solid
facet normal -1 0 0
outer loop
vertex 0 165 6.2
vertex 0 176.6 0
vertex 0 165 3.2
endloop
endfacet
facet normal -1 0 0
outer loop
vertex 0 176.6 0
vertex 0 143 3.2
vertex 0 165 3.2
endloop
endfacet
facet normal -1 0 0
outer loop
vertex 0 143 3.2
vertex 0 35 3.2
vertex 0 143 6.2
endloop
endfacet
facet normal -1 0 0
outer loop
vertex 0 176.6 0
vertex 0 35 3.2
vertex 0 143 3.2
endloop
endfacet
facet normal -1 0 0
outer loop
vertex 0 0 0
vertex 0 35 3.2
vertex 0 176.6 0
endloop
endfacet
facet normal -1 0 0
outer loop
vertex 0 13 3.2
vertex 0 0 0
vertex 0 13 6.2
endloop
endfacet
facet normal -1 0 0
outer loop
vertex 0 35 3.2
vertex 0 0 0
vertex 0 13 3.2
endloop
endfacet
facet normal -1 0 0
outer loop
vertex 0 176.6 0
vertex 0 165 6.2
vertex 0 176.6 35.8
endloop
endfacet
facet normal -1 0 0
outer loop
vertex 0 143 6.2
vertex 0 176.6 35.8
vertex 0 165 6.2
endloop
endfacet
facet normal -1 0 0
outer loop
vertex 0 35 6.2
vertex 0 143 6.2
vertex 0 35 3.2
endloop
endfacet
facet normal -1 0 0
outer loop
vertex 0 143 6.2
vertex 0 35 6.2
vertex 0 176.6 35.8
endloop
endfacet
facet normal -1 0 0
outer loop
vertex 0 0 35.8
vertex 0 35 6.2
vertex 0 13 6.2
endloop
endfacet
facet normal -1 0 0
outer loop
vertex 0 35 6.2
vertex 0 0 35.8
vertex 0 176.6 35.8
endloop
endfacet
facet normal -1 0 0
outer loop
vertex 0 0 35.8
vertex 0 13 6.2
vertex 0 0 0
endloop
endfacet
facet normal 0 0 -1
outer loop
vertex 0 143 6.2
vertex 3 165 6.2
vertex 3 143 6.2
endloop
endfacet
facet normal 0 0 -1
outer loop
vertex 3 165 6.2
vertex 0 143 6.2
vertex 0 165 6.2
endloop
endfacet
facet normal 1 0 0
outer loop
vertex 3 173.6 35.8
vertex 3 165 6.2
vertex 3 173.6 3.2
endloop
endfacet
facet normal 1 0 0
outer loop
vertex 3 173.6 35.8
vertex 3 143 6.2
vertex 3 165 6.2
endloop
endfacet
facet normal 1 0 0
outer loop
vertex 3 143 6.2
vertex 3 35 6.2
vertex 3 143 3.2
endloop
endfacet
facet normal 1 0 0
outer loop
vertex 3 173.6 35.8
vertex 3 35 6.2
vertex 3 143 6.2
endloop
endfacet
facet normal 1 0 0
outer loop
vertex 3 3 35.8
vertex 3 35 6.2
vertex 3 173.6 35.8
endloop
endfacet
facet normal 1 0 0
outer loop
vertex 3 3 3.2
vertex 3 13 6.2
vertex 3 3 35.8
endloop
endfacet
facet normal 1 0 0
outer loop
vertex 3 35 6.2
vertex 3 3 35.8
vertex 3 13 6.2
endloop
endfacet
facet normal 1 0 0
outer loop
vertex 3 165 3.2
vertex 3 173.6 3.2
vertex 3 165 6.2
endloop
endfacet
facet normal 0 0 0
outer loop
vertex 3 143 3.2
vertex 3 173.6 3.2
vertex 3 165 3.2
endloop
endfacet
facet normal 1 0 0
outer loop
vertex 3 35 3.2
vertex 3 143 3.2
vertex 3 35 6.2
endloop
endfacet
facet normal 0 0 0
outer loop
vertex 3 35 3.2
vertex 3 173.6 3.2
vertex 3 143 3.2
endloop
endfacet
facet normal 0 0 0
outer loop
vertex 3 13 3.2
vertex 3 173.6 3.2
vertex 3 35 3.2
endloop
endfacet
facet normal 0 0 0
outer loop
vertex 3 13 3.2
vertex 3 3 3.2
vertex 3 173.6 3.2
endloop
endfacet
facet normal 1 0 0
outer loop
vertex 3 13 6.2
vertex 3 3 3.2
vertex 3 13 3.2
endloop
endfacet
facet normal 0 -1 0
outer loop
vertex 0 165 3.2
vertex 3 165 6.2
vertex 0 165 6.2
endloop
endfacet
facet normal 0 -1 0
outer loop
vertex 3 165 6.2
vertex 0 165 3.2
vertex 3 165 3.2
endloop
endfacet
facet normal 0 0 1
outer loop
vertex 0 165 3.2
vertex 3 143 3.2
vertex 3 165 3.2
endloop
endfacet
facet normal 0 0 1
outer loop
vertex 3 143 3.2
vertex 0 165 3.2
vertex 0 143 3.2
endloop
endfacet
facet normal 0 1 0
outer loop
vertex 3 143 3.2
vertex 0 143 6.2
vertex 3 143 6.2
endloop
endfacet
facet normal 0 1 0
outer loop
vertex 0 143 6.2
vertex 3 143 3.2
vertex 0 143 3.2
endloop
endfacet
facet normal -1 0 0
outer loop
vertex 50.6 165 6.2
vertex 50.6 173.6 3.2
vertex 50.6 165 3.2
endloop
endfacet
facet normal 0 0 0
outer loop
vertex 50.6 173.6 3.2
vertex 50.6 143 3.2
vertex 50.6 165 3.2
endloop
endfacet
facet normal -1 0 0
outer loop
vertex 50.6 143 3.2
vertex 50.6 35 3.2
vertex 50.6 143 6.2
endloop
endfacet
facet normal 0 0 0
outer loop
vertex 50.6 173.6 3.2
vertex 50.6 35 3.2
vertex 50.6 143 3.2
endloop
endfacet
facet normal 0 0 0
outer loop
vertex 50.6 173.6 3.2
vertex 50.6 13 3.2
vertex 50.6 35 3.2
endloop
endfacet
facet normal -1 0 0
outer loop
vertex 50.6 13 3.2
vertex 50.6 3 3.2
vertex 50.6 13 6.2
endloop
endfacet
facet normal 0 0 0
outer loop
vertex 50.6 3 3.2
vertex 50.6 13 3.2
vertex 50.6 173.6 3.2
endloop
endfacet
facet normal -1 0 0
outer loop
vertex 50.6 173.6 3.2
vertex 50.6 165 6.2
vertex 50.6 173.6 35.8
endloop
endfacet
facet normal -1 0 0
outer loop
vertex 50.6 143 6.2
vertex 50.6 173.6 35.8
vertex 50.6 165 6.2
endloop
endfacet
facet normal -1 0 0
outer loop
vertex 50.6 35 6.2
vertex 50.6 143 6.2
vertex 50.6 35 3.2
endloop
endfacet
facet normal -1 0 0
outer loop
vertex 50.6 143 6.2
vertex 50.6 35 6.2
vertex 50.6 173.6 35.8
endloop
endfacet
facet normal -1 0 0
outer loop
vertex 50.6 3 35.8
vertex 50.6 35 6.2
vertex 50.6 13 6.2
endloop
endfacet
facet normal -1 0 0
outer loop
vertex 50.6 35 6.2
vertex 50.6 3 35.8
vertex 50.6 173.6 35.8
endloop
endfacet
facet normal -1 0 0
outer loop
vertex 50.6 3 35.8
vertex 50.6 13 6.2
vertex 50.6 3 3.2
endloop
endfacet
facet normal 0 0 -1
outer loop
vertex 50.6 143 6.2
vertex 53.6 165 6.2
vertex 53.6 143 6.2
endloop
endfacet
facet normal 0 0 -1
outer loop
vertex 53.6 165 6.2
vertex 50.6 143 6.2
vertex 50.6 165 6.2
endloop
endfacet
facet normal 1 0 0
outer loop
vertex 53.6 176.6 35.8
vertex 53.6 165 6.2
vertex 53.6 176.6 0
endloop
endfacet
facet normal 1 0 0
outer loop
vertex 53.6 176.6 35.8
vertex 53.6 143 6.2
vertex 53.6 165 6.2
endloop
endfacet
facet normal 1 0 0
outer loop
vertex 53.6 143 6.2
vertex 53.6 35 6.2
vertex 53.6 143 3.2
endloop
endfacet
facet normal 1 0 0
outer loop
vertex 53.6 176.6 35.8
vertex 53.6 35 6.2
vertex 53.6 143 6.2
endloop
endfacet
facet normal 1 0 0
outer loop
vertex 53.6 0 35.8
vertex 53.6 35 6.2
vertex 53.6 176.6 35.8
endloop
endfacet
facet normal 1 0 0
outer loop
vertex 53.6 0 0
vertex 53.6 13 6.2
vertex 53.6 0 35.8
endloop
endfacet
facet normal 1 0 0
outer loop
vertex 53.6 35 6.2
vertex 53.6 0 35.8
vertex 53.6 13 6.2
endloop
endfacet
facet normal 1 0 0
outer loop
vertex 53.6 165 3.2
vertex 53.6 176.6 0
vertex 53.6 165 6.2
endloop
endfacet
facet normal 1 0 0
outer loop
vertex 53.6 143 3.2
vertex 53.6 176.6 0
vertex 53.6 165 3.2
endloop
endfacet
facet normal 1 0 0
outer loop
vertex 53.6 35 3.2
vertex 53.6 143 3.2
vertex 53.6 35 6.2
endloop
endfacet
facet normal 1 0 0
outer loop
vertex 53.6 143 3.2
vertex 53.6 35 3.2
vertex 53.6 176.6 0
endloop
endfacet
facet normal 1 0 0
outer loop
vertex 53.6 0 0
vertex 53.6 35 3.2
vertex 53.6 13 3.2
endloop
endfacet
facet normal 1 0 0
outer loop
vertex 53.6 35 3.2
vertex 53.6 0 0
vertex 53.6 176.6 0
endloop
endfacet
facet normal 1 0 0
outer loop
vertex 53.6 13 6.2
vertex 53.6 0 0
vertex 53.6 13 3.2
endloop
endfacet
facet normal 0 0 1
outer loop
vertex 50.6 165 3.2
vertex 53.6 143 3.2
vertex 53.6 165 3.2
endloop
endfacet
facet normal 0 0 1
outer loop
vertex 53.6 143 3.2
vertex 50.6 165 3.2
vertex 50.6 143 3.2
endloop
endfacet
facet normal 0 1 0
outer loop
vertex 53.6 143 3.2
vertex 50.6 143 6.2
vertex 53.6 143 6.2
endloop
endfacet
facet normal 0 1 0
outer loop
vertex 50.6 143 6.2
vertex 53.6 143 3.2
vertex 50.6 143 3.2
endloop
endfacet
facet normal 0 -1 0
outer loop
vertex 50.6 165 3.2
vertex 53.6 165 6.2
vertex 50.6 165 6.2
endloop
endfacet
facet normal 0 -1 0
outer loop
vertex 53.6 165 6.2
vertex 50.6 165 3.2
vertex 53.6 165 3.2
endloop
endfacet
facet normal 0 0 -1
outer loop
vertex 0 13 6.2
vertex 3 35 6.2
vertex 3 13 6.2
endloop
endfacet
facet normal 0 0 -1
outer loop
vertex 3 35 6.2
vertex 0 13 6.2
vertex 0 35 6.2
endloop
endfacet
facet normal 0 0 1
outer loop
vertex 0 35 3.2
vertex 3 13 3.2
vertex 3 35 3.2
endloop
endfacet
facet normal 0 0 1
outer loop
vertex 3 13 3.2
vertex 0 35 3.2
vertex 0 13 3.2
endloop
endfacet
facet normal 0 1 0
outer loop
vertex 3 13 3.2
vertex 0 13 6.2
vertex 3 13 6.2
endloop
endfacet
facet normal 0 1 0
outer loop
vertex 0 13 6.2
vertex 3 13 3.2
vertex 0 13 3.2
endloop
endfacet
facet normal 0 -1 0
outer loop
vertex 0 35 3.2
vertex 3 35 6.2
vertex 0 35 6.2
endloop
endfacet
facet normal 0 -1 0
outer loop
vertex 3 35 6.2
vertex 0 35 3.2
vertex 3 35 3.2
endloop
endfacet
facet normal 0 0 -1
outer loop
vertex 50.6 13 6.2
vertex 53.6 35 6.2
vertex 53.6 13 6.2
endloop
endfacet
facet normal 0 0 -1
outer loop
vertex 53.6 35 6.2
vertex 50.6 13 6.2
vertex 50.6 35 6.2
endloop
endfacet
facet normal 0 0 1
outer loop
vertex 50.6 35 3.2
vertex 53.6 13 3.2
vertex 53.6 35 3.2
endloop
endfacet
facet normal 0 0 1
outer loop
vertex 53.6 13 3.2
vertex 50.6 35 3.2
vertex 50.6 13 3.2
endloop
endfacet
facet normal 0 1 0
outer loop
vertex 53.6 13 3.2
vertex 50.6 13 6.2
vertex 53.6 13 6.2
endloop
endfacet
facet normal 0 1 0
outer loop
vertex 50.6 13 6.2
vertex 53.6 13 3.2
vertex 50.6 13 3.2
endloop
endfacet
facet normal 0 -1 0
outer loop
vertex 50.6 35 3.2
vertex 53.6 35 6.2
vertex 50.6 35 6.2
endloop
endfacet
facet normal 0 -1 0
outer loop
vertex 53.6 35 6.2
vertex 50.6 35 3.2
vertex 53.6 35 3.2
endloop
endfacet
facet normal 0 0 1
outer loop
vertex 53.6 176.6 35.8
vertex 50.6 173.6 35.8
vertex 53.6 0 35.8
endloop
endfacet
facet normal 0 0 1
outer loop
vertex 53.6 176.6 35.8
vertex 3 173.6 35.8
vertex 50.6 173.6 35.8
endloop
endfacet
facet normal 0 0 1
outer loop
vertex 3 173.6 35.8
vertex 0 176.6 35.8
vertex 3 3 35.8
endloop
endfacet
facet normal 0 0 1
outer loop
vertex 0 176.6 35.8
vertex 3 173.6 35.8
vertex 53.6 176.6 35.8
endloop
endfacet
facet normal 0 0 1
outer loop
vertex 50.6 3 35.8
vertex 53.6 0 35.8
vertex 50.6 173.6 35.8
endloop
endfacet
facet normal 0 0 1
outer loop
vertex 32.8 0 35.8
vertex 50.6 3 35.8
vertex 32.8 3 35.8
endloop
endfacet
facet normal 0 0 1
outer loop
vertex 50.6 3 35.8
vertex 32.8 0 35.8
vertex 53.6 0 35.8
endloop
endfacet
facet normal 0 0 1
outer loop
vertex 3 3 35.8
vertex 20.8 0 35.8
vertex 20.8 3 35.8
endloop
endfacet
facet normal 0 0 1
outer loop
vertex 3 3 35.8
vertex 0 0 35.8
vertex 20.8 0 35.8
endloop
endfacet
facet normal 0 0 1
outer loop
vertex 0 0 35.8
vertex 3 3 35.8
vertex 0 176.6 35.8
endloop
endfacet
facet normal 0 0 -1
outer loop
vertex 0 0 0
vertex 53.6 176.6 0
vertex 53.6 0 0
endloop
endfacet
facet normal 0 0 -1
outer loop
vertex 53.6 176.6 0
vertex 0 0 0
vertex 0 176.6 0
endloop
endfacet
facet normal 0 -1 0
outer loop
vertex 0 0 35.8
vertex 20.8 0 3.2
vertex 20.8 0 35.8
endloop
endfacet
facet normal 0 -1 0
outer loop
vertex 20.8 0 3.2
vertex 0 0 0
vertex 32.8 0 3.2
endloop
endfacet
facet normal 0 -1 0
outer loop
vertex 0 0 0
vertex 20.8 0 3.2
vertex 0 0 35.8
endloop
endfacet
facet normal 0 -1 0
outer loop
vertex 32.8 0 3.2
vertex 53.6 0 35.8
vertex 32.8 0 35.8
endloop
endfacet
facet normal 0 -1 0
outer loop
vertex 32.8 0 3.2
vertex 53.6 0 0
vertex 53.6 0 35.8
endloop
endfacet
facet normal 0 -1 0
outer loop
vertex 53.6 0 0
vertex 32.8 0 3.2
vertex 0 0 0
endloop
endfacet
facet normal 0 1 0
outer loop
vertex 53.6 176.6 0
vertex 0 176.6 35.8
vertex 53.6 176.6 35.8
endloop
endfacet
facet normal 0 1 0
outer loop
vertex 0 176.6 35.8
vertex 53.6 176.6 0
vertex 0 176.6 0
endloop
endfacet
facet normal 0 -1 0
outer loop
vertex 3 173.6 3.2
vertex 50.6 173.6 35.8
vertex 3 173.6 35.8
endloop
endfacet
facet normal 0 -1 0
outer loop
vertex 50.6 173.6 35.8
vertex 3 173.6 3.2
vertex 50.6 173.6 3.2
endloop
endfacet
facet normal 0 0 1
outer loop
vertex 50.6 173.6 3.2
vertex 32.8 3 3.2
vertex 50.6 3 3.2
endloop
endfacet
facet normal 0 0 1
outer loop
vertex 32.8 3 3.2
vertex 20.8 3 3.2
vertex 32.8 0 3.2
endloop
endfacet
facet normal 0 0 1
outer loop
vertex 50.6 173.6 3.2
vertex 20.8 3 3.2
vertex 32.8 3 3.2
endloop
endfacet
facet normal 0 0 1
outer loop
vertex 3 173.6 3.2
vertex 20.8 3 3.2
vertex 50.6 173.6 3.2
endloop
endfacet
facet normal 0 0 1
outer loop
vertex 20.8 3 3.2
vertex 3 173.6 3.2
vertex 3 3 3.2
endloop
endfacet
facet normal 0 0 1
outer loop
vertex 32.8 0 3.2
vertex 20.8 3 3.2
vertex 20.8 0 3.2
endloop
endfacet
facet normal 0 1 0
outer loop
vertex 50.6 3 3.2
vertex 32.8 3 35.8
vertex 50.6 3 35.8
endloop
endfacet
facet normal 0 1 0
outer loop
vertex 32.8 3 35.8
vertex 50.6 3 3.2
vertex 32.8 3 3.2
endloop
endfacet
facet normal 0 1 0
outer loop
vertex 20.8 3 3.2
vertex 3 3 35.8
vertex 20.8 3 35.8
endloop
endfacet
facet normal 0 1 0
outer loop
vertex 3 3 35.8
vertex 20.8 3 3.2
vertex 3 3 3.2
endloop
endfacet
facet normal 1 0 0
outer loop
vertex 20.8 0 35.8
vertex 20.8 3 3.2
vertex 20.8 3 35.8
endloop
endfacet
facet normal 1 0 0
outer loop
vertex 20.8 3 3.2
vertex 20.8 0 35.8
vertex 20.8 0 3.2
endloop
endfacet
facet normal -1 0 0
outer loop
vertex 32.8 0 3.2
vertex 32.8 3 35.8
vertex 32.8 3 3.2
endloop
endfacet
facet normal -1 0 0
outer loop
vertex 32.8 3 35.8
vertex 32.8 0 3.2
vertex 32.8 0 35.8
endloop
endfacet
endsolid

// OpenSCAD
//
// Parametric battery tray with SIDE-WALL strap slots
// B Dog — Pi/quad build
//
// Coordinate frame:
//   X = width  (left↔right)
//   Y = length (front↔back)
//   Z = up (floor → lips)
//

//-------------------
// USER PARAMETERS 
//-------------------
battery           = [47, 170, 32];   // [W, L, H]  (width, length, height) in mm
clearance         = 0.30;            // per-side clearance inside pocket (ABS ≈ 0.3–0.4)
wallThickness     = 3.00;            // wall thickness
floorThickness    = 3.20;            // floor thickness

// Side-wall strap slots (two bands)
strapWidth       = 20.0;                // strap width (typical 20 mm)
slotLengthY      = strapWidth + 2.0;    // along Y (give ~1 mm per side)
slotThicknessZ   = 3.0;                 // vertical opening (Z) for the strap thickness
slot1OffsetFront = 10.0;                // first slot center from inner FRONT (Y)
slotSpacingY     = 130.0;               // distance between the two slots along Y

// Cable exit notch (front lip)
cableNotchWidth = 12.0;
cableNotchDepth = 6.0;

//-----------------------
// DERIVED GEOMETRY
//-----------------------
innerWidth  = battery[0] + 2*clearance;  // inner width
innerLength = battery[1] + 2*clearance;  // inner length 
innerHeight = battery[2] + 2*clearance;  // inner height

outerBlock = [ innerWidth  + 2*wallThickness,
               innerLength + 2*wallThickness, 
               innerHeight + floorThickness ];
              
//----------------
// MAIN SHAPES
//----------------
module tray_shell() 
{
  difference() 
  {
    // Outer block
    cube(outerBlock, center=false);

    // Inner pocket (removes volume, leaves floor + walls)
    translate([wallThickness, wallThickness, floorThickness])
    {
      cube([innerWidth, innerLength, innerHeight], center=false);
    }

    // FRONT cable notch (cut through front lip)
    translate([0.5*(outerBlock[0] - cableNotchWidth), 0.0, floorThickness])
    {
      cube([cableNotchWidth, cableNotchDepth, innerHeight], center=false);
    }
    
    // first slot from front
    translate([0.0, wallThickness + slot1OffsetFront, floorThickness])
    {
      cube([wallThickness, slotLengthY, slotThicknessZ], center=false);
      translate([wallThickness + innerWidth, 0.0, 0.0])
      {
        cube([wallThickness, slotLengthY, slotThicknessZ], center=false);
      }
      translate([0.0, slotSpacingY, 0.0])
      {
        cube([wallThickness, slotLengthY, slotThicknessZ], center=false);
        translate([wallThickness + innerWidth, 0.0, 0.0])
        {
          cube([wallThickness, slotLengthY, slotThicknessZ], center=false);
        }
      }
    }
  }
}

//---------------------
// ASSEMBLY
//---------------------
tray_shell();
